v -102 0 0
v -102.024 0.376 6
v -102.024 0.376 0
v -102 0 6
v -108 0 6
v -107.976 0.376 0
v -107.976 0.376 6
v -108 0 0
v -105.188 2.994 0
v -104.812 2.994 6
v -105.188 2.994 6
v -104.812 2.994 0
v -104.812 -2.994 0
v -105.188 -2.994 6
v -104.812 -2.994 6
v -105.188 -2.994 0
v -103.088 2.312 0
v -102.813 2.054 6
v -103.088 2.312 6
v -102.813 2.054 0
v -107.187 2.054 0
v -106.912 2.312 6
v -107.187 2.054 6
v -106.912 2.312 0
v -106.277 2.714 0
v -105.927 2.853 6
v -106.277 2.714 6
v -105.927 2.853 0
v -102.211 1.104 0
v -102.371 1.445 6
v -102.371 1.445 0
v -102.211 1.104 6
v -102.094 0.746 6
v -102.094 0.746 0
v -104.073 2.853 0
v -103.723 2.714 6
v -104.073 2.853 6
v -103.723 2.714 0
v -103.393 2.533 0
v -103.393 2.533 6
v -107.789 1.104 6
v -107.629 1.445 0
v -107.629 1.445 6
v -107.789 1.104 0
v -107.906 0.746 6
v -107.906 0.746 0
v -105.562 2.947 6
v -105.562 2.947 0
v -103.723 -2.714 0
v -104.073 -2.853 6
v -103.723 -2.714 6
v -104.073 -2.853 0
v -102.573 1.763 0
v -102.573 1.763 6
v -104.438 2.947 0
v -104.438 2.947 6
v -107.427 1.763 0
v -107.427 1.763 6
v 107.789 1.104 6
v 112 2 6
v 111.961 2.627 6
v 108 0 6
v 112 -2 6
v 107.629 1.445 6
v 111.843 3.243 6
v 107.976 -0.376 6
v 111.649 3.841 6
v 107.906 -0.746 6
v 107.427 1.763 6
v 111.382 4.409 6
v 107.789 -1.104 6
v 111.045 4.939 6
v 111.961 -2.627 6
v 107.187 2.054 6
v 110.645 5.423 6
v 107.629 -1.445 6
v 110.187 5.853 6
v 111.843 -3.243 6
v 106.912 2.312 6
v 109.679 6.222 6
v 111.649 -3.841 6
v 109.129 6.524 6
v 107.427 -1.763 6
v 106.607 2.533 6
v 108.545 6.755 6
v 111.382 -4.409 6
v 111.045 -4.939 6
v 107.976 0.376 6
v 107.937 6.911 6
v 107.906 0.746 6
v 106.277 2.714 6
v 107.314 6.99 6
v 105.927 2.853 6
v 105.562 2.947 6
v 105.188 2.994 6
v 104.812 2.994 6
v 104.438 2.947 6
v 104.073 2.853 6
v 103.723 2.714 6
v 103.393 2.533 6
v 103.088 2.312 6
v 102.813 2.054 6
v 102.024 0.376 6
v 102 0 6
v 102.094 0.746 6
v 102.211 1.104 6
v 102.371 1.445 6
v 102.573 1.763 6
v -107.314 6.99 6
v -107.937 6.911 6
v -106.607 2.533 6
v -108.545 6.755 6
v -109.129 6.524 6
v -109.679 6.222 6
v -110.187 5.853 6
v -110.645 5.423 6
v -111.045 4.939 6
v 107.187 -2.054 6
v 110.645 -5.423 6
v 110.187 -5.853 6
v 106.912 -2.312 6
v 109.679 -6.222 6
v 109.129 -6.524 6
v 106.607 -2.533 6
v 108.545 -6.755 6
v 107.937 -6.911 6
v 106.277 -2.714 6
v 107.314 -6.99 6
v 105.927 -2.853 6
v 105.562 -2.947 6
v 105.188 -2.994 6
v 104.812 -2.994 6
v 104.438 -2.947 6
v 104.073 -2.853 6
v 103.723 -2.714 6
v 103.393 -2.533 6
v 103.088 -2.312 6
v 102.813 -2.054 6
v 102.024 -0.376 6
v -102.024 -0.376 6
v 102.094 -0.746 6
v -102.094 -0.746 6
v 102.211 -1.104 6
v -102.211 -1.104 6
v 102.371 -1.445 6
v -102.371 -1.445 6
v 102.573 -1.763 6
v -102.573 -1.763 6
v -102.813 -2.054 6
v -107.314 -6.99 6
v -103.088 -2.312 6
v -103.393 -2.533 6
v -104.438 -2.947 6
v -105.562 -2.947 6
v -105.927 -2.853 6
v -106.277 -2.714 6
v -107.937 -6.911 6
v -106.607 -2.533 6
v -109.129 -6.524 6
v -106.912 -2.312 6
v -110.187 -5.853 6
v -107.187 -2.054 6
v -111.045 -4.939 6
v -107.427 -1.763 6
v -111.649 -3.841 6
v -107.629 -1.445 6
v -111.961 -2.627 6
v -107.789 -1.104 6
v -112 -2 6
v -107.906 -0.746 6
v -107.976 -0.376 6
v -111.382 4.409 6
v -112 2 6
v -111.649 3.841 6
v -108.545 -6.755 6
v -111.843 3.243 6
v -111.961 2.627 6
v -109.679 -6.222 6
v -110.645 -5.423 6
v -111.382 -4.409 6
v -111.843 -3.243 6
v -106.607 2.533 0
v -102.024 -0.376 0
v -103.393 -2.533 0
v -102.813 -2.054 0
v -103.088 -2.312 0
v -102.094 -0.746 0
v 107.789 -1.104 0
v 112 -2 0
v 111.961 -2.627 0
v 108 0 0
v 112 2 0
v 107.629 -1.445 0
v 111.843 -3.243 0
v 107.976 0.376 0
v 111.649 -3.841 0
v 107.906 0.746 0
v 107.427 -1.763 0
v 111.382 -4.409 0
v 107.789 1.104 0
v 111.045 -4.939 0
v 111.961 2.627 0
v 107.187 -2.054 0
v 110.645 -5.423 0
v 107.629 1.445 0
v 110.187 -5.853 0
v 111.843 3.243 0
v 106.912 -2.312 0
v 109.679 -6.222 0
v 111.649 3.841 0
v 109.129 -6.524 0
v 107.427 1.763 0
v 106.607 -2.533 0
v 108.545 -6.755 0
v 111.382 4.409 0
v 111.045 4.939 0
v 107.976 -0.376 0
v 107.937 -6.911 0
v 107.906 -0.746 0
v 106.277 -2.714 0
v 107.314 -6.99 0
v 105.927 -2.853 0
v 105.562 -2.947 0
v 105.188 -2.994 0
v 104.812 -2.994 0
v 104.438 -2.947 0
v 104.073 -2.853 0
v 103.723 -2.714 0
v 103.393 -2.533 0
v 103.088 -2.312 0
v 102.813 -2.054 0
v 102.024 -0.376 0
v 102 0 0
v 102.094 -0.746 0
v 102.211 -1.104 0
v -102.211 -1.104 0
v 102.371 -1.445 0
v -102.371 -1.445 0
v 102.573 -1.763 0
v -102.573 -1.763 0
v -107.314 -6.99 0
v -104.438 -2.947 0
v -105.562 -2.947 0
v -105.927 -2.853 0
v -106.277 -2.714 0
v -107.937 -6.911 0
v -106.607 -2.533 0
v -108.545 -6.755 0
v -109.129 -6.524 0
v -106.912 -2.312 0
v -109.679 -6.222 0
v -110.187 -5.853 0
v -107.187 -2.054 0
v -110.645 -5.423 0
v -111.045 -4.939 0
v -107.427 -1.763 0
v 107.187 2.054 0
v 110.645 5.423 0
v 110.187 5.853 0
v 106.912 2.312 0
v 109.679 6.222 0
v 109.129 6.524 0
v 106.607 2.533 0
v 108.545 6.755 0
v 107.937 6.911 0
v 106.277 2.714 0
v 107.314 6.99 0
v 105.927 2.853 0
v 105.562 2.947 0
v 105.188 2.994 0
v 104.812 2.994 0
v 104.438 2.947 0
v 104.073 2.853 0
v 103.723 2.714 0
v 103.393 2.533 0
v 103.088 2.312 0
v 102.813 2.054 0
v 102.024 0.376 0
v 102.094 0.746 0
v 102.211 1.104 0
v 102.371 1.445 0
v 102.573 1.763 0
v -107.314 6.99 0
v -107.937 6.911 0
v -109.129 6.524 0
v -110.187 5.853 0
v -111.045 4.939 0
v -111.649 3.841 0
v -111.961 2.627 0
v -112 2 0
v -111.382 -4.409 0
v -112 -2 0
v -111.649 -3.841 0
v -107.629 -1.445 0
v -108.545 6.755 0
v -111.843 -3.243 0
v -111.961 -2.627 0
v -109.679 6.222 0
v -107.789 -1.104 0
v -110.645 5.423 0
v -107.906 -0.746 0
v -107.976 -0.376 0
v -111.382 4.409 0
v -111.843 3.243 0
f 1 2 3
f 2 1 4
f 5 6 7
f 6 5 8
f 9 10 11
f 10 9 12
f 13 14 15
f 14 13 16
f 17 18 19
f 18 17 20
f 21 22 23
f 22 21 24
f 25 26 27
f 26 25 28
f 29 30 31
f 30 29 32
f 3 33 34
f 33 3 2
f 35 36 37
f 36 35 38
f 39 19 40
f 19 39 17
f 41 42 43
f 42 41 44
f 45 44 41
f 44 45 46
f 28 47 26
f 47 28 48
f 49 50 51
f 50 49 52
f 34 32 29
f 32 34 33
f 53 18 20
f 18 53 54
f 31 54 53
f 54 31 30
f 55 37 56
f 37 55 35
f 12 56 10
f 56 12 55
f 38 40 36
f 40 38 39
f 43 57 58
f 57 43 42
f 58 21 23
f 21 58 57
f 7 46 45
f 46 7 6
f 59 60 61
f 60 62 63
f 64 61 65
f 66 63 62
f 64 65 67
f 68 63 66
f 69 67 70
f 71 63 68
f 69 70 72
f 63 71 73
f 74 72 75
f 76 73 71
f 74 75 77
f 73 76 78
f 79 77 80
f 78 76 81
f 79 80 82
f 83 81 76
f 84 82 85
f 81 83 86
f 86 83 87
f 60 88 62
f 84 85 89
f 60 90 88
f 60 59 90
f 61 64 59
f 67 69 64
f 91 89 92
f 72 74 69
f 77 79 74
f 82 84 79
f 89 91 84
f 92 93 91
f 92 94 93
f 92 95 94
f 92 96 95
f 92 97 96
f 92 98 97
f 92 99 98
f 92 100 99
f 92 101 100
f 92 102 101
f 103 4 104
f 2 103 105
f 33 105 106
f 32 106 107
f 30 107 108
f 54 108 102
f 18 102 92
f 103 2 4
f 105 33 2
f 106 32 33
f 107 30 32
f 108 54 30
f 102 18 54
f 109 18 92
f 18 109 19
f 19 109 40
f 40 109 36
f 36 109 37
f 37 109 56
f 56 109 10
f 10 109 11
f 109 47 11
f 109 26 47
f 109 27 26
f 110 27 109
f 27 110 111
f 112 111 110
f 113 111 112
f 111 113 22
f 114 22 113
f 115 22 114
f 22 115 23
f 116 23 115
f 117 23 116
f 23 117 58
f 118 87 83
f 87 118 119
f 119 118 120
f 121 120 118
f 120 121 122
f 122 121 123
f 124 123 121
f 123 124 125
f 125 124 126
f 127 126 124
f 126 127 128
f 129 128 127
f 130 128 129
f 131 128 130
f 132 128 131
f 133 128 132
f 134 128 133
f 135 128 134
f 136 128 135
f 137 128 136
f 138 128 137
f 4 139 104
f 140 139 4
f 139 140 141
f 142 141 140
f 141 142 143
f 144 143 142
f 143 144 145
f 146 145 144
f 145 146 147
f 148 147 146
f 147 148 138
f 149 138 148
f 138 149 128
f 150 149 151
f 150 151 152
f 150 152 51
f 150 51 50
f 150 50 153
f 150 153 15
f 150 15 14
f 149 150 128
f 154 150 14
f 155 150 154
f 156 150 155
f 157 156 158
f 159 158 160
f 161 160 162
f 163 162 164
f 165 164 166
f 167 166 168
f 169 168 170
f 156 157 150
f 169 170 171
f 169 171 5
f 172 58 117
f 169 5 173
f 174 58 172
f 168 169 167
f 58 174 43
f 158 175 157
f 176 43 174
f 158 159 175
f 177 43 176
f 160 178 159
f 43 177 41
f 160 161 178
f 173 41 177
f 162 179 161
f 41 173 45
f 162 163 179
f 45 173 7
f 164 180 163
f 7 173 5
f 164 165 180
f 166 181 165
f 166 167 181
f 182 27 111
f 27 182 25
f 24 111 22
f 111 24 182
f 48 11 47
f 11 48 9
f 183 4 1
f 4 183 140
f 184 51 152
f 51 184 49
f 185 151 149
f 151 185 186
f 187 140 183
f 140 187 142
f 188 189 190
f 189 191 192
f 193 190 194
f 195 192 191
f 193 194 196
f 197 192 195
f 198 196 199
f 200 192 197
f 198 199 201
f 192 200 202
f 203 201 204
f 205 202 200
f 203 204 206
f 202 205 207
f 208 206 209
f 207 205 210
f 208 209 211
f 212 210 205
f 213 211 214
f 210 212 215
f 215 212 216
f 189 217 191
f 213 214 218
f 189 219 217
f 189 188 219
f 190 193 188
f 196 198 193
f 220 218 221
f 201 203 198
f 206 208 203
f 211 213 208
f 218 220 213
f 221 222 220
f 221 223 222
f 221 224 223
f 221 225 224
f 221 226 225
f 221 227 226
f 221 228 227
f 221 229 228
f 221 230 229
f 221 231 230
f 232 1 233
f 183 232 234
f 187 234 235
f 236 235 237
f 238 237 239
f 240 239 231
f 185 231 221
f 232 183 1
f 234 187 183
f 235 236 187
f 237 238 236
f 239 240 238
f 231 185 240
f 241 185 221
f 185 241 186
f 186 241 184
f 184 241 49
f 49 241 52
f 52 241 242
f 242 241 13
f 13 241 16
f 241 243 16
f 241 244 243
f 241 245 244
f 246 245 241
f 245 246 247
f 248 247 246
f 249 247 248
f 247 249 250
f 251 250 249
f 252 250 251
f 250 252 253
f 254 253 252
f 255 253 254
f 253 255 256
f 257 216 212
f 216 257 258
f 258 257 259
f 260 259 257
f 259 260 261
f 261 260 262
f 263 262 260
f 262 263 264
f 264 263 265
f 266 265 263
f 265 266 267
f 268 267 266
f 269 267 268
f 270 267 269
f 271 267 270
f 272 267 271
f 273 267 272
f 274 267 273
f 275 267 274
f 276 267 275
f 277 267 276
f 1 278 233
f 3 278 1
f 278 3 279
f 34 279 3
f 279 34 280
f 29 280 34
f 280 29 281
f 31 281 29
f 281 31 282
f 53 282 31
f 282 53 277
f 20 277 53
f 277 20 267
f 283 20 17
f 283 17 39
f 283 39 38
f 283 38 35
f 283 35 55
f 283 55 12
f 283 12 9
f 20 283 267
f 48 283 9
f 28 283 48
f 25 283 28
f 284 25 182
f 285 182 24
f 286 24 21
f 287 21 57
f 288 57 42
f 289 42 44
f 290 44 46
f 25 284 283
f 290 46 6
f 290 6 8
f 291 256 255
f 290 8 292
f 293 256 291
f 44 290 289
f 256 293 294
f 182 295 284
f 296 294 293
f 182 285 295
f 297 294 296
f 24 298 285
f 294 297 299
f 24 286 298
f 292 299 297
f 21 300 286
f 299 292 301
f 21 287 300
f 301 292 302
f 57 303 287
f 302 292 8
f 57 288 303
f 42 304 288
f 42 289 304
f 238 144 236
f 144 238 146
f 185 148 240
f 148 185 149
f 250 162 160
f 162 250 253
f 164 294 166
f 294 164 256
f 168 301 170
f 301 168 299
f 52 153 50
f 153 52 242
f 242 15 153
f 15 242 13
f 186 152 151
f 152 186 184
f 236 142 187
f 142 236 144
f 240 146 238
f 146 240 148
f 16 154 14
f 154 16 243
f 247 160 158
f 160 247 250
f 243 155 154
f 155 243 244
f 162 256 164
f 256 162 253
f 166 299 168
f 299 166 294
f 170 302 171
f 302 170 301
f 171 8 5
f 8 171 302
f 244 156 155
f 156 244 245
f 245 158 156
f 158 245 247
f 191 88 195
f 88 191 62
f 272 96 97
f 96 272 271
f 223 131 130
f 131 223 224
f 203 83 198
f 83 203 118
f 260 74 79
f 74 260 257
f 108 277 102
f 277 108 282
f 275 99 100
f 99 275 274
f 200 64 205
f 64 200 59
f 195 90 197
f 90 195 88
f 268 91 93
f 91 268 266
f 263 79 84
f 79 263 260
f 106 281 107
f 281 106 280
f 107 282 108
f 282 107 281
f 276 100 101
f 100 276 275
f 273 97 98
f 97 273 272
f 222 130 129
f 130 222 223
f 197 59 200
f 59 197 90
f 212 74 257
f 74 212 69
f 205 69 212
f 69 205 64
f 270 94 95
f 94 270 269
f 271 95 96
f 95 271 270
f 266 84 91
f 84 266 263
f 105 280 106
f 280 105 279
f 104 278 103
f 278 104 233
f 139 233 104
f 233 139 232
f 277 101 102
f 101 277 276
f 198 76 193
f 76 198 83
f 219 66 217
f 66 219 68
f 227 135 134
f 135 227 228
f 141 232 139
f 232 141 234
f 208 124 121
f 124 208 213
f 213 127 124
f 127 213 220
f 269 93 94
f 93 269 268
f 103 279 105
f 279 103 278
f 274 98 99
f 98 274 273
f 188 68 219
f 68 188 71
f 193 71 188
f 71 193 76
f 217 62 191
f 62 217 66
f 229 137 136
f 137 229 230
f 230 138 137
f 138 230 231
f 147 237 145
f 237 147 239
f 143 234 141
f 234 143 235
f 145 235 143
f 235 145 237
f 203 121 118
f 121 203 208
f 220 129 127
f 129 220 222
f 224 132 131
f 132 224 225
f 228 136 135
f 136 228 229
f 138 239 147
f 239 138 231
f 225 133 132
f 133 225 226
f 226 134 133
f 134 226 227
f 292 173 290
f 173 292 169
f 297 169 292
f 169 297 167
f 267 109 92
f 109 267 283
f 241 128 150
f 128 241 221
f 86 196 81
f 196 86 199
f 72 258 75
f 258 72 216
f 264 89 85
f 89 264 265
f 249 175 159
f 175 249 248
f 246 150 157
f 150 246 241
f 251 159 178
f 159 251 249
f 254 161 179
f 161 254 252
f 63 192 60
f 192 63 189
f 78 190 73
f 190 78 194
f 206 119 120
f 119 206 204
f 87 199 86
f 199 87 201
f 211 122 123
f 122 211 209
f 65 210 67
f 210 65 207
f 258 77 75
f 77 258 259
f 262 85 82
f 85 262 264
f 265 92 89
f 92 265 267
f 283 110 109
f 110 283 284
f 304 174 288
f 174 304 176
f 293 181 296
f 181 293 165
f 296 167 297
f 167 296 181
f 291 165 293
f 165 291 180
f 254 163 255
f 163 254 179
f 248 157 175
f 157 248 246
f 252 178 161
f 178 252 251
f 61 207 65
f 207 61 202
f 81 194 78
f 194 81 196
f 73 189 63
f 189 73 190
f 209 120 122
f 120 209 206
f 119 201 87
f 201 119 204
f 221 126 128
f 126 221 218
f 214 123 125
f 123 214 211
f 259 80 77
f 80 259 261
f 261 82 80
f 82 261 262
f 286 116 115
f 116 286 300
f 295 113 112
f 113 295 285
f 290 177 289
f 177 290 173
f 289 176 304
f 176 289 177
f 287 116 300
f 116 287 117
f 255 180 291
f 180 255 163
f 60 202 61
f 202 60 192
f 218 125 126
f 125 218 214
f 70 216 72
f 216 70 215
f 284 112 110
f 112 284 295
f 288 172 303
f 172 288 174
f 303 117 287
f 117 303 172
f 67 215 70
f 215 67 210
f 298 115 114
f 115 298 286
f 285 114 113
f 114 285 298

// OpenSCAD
$fn = 50;


difference() {
	union() {
		hull() {
			translate(v = [-107.0000000000, 2.0000000000, 0]) {
				cylinder(h = 6, r = 5);
			}
			translate(v = [107.0000000000, 2.0000000000, 0]) {
				cylinder(h = 6, r = 5);
			}
			translate(v = [-107.0000000000, -2.0000000000, 0]) {
				cylinder(h = 6, r = 5);
			}
			translate(v = [107.0000000000, -2.0000000000, 0]) {
				cylinder(h = 6, r = 5);
			}
		}
	}
	union() {
		translate(v = [-105.0000000000, 0.0000000000, 0]) {
			cylinder(h = 6, r = 3.0000000000);
		}
		translate(v = [105.0000000000, 0.0000000000, 0]) {
			cylinder(h = 6, r = 3.0000000000);
		}
		translate(v = [-105.0000000000, 0.0000000000, 0]) {
			cylinder(h = 6, r = 1.5000000000);
		}
		translate(v = [105.0000000000, 0.0000000000, 0]) {
			cylinder(h = 6, r = 1.5000000000);
		}
		translate(v = [-105.0000000000, 0.0000000000, 0]) {
			cylinder(h = 6, r = 1.5000000000);
		}
		translate(v = [105.0000000000, 0.0000000000, 0]) {
			cylinder(h = 6, r = 1.5000000000);
		}
		translate(v = [-105.0000000000, 0.0000000000, 0]) {
			cylinder(h = 6, r = 1.5000000000);
		}
		translate(v = [105.0000000000, 0.0000000000, 0]) {
			cylinder(h = 6, r = 1.5000000000);
		}
	}
}
